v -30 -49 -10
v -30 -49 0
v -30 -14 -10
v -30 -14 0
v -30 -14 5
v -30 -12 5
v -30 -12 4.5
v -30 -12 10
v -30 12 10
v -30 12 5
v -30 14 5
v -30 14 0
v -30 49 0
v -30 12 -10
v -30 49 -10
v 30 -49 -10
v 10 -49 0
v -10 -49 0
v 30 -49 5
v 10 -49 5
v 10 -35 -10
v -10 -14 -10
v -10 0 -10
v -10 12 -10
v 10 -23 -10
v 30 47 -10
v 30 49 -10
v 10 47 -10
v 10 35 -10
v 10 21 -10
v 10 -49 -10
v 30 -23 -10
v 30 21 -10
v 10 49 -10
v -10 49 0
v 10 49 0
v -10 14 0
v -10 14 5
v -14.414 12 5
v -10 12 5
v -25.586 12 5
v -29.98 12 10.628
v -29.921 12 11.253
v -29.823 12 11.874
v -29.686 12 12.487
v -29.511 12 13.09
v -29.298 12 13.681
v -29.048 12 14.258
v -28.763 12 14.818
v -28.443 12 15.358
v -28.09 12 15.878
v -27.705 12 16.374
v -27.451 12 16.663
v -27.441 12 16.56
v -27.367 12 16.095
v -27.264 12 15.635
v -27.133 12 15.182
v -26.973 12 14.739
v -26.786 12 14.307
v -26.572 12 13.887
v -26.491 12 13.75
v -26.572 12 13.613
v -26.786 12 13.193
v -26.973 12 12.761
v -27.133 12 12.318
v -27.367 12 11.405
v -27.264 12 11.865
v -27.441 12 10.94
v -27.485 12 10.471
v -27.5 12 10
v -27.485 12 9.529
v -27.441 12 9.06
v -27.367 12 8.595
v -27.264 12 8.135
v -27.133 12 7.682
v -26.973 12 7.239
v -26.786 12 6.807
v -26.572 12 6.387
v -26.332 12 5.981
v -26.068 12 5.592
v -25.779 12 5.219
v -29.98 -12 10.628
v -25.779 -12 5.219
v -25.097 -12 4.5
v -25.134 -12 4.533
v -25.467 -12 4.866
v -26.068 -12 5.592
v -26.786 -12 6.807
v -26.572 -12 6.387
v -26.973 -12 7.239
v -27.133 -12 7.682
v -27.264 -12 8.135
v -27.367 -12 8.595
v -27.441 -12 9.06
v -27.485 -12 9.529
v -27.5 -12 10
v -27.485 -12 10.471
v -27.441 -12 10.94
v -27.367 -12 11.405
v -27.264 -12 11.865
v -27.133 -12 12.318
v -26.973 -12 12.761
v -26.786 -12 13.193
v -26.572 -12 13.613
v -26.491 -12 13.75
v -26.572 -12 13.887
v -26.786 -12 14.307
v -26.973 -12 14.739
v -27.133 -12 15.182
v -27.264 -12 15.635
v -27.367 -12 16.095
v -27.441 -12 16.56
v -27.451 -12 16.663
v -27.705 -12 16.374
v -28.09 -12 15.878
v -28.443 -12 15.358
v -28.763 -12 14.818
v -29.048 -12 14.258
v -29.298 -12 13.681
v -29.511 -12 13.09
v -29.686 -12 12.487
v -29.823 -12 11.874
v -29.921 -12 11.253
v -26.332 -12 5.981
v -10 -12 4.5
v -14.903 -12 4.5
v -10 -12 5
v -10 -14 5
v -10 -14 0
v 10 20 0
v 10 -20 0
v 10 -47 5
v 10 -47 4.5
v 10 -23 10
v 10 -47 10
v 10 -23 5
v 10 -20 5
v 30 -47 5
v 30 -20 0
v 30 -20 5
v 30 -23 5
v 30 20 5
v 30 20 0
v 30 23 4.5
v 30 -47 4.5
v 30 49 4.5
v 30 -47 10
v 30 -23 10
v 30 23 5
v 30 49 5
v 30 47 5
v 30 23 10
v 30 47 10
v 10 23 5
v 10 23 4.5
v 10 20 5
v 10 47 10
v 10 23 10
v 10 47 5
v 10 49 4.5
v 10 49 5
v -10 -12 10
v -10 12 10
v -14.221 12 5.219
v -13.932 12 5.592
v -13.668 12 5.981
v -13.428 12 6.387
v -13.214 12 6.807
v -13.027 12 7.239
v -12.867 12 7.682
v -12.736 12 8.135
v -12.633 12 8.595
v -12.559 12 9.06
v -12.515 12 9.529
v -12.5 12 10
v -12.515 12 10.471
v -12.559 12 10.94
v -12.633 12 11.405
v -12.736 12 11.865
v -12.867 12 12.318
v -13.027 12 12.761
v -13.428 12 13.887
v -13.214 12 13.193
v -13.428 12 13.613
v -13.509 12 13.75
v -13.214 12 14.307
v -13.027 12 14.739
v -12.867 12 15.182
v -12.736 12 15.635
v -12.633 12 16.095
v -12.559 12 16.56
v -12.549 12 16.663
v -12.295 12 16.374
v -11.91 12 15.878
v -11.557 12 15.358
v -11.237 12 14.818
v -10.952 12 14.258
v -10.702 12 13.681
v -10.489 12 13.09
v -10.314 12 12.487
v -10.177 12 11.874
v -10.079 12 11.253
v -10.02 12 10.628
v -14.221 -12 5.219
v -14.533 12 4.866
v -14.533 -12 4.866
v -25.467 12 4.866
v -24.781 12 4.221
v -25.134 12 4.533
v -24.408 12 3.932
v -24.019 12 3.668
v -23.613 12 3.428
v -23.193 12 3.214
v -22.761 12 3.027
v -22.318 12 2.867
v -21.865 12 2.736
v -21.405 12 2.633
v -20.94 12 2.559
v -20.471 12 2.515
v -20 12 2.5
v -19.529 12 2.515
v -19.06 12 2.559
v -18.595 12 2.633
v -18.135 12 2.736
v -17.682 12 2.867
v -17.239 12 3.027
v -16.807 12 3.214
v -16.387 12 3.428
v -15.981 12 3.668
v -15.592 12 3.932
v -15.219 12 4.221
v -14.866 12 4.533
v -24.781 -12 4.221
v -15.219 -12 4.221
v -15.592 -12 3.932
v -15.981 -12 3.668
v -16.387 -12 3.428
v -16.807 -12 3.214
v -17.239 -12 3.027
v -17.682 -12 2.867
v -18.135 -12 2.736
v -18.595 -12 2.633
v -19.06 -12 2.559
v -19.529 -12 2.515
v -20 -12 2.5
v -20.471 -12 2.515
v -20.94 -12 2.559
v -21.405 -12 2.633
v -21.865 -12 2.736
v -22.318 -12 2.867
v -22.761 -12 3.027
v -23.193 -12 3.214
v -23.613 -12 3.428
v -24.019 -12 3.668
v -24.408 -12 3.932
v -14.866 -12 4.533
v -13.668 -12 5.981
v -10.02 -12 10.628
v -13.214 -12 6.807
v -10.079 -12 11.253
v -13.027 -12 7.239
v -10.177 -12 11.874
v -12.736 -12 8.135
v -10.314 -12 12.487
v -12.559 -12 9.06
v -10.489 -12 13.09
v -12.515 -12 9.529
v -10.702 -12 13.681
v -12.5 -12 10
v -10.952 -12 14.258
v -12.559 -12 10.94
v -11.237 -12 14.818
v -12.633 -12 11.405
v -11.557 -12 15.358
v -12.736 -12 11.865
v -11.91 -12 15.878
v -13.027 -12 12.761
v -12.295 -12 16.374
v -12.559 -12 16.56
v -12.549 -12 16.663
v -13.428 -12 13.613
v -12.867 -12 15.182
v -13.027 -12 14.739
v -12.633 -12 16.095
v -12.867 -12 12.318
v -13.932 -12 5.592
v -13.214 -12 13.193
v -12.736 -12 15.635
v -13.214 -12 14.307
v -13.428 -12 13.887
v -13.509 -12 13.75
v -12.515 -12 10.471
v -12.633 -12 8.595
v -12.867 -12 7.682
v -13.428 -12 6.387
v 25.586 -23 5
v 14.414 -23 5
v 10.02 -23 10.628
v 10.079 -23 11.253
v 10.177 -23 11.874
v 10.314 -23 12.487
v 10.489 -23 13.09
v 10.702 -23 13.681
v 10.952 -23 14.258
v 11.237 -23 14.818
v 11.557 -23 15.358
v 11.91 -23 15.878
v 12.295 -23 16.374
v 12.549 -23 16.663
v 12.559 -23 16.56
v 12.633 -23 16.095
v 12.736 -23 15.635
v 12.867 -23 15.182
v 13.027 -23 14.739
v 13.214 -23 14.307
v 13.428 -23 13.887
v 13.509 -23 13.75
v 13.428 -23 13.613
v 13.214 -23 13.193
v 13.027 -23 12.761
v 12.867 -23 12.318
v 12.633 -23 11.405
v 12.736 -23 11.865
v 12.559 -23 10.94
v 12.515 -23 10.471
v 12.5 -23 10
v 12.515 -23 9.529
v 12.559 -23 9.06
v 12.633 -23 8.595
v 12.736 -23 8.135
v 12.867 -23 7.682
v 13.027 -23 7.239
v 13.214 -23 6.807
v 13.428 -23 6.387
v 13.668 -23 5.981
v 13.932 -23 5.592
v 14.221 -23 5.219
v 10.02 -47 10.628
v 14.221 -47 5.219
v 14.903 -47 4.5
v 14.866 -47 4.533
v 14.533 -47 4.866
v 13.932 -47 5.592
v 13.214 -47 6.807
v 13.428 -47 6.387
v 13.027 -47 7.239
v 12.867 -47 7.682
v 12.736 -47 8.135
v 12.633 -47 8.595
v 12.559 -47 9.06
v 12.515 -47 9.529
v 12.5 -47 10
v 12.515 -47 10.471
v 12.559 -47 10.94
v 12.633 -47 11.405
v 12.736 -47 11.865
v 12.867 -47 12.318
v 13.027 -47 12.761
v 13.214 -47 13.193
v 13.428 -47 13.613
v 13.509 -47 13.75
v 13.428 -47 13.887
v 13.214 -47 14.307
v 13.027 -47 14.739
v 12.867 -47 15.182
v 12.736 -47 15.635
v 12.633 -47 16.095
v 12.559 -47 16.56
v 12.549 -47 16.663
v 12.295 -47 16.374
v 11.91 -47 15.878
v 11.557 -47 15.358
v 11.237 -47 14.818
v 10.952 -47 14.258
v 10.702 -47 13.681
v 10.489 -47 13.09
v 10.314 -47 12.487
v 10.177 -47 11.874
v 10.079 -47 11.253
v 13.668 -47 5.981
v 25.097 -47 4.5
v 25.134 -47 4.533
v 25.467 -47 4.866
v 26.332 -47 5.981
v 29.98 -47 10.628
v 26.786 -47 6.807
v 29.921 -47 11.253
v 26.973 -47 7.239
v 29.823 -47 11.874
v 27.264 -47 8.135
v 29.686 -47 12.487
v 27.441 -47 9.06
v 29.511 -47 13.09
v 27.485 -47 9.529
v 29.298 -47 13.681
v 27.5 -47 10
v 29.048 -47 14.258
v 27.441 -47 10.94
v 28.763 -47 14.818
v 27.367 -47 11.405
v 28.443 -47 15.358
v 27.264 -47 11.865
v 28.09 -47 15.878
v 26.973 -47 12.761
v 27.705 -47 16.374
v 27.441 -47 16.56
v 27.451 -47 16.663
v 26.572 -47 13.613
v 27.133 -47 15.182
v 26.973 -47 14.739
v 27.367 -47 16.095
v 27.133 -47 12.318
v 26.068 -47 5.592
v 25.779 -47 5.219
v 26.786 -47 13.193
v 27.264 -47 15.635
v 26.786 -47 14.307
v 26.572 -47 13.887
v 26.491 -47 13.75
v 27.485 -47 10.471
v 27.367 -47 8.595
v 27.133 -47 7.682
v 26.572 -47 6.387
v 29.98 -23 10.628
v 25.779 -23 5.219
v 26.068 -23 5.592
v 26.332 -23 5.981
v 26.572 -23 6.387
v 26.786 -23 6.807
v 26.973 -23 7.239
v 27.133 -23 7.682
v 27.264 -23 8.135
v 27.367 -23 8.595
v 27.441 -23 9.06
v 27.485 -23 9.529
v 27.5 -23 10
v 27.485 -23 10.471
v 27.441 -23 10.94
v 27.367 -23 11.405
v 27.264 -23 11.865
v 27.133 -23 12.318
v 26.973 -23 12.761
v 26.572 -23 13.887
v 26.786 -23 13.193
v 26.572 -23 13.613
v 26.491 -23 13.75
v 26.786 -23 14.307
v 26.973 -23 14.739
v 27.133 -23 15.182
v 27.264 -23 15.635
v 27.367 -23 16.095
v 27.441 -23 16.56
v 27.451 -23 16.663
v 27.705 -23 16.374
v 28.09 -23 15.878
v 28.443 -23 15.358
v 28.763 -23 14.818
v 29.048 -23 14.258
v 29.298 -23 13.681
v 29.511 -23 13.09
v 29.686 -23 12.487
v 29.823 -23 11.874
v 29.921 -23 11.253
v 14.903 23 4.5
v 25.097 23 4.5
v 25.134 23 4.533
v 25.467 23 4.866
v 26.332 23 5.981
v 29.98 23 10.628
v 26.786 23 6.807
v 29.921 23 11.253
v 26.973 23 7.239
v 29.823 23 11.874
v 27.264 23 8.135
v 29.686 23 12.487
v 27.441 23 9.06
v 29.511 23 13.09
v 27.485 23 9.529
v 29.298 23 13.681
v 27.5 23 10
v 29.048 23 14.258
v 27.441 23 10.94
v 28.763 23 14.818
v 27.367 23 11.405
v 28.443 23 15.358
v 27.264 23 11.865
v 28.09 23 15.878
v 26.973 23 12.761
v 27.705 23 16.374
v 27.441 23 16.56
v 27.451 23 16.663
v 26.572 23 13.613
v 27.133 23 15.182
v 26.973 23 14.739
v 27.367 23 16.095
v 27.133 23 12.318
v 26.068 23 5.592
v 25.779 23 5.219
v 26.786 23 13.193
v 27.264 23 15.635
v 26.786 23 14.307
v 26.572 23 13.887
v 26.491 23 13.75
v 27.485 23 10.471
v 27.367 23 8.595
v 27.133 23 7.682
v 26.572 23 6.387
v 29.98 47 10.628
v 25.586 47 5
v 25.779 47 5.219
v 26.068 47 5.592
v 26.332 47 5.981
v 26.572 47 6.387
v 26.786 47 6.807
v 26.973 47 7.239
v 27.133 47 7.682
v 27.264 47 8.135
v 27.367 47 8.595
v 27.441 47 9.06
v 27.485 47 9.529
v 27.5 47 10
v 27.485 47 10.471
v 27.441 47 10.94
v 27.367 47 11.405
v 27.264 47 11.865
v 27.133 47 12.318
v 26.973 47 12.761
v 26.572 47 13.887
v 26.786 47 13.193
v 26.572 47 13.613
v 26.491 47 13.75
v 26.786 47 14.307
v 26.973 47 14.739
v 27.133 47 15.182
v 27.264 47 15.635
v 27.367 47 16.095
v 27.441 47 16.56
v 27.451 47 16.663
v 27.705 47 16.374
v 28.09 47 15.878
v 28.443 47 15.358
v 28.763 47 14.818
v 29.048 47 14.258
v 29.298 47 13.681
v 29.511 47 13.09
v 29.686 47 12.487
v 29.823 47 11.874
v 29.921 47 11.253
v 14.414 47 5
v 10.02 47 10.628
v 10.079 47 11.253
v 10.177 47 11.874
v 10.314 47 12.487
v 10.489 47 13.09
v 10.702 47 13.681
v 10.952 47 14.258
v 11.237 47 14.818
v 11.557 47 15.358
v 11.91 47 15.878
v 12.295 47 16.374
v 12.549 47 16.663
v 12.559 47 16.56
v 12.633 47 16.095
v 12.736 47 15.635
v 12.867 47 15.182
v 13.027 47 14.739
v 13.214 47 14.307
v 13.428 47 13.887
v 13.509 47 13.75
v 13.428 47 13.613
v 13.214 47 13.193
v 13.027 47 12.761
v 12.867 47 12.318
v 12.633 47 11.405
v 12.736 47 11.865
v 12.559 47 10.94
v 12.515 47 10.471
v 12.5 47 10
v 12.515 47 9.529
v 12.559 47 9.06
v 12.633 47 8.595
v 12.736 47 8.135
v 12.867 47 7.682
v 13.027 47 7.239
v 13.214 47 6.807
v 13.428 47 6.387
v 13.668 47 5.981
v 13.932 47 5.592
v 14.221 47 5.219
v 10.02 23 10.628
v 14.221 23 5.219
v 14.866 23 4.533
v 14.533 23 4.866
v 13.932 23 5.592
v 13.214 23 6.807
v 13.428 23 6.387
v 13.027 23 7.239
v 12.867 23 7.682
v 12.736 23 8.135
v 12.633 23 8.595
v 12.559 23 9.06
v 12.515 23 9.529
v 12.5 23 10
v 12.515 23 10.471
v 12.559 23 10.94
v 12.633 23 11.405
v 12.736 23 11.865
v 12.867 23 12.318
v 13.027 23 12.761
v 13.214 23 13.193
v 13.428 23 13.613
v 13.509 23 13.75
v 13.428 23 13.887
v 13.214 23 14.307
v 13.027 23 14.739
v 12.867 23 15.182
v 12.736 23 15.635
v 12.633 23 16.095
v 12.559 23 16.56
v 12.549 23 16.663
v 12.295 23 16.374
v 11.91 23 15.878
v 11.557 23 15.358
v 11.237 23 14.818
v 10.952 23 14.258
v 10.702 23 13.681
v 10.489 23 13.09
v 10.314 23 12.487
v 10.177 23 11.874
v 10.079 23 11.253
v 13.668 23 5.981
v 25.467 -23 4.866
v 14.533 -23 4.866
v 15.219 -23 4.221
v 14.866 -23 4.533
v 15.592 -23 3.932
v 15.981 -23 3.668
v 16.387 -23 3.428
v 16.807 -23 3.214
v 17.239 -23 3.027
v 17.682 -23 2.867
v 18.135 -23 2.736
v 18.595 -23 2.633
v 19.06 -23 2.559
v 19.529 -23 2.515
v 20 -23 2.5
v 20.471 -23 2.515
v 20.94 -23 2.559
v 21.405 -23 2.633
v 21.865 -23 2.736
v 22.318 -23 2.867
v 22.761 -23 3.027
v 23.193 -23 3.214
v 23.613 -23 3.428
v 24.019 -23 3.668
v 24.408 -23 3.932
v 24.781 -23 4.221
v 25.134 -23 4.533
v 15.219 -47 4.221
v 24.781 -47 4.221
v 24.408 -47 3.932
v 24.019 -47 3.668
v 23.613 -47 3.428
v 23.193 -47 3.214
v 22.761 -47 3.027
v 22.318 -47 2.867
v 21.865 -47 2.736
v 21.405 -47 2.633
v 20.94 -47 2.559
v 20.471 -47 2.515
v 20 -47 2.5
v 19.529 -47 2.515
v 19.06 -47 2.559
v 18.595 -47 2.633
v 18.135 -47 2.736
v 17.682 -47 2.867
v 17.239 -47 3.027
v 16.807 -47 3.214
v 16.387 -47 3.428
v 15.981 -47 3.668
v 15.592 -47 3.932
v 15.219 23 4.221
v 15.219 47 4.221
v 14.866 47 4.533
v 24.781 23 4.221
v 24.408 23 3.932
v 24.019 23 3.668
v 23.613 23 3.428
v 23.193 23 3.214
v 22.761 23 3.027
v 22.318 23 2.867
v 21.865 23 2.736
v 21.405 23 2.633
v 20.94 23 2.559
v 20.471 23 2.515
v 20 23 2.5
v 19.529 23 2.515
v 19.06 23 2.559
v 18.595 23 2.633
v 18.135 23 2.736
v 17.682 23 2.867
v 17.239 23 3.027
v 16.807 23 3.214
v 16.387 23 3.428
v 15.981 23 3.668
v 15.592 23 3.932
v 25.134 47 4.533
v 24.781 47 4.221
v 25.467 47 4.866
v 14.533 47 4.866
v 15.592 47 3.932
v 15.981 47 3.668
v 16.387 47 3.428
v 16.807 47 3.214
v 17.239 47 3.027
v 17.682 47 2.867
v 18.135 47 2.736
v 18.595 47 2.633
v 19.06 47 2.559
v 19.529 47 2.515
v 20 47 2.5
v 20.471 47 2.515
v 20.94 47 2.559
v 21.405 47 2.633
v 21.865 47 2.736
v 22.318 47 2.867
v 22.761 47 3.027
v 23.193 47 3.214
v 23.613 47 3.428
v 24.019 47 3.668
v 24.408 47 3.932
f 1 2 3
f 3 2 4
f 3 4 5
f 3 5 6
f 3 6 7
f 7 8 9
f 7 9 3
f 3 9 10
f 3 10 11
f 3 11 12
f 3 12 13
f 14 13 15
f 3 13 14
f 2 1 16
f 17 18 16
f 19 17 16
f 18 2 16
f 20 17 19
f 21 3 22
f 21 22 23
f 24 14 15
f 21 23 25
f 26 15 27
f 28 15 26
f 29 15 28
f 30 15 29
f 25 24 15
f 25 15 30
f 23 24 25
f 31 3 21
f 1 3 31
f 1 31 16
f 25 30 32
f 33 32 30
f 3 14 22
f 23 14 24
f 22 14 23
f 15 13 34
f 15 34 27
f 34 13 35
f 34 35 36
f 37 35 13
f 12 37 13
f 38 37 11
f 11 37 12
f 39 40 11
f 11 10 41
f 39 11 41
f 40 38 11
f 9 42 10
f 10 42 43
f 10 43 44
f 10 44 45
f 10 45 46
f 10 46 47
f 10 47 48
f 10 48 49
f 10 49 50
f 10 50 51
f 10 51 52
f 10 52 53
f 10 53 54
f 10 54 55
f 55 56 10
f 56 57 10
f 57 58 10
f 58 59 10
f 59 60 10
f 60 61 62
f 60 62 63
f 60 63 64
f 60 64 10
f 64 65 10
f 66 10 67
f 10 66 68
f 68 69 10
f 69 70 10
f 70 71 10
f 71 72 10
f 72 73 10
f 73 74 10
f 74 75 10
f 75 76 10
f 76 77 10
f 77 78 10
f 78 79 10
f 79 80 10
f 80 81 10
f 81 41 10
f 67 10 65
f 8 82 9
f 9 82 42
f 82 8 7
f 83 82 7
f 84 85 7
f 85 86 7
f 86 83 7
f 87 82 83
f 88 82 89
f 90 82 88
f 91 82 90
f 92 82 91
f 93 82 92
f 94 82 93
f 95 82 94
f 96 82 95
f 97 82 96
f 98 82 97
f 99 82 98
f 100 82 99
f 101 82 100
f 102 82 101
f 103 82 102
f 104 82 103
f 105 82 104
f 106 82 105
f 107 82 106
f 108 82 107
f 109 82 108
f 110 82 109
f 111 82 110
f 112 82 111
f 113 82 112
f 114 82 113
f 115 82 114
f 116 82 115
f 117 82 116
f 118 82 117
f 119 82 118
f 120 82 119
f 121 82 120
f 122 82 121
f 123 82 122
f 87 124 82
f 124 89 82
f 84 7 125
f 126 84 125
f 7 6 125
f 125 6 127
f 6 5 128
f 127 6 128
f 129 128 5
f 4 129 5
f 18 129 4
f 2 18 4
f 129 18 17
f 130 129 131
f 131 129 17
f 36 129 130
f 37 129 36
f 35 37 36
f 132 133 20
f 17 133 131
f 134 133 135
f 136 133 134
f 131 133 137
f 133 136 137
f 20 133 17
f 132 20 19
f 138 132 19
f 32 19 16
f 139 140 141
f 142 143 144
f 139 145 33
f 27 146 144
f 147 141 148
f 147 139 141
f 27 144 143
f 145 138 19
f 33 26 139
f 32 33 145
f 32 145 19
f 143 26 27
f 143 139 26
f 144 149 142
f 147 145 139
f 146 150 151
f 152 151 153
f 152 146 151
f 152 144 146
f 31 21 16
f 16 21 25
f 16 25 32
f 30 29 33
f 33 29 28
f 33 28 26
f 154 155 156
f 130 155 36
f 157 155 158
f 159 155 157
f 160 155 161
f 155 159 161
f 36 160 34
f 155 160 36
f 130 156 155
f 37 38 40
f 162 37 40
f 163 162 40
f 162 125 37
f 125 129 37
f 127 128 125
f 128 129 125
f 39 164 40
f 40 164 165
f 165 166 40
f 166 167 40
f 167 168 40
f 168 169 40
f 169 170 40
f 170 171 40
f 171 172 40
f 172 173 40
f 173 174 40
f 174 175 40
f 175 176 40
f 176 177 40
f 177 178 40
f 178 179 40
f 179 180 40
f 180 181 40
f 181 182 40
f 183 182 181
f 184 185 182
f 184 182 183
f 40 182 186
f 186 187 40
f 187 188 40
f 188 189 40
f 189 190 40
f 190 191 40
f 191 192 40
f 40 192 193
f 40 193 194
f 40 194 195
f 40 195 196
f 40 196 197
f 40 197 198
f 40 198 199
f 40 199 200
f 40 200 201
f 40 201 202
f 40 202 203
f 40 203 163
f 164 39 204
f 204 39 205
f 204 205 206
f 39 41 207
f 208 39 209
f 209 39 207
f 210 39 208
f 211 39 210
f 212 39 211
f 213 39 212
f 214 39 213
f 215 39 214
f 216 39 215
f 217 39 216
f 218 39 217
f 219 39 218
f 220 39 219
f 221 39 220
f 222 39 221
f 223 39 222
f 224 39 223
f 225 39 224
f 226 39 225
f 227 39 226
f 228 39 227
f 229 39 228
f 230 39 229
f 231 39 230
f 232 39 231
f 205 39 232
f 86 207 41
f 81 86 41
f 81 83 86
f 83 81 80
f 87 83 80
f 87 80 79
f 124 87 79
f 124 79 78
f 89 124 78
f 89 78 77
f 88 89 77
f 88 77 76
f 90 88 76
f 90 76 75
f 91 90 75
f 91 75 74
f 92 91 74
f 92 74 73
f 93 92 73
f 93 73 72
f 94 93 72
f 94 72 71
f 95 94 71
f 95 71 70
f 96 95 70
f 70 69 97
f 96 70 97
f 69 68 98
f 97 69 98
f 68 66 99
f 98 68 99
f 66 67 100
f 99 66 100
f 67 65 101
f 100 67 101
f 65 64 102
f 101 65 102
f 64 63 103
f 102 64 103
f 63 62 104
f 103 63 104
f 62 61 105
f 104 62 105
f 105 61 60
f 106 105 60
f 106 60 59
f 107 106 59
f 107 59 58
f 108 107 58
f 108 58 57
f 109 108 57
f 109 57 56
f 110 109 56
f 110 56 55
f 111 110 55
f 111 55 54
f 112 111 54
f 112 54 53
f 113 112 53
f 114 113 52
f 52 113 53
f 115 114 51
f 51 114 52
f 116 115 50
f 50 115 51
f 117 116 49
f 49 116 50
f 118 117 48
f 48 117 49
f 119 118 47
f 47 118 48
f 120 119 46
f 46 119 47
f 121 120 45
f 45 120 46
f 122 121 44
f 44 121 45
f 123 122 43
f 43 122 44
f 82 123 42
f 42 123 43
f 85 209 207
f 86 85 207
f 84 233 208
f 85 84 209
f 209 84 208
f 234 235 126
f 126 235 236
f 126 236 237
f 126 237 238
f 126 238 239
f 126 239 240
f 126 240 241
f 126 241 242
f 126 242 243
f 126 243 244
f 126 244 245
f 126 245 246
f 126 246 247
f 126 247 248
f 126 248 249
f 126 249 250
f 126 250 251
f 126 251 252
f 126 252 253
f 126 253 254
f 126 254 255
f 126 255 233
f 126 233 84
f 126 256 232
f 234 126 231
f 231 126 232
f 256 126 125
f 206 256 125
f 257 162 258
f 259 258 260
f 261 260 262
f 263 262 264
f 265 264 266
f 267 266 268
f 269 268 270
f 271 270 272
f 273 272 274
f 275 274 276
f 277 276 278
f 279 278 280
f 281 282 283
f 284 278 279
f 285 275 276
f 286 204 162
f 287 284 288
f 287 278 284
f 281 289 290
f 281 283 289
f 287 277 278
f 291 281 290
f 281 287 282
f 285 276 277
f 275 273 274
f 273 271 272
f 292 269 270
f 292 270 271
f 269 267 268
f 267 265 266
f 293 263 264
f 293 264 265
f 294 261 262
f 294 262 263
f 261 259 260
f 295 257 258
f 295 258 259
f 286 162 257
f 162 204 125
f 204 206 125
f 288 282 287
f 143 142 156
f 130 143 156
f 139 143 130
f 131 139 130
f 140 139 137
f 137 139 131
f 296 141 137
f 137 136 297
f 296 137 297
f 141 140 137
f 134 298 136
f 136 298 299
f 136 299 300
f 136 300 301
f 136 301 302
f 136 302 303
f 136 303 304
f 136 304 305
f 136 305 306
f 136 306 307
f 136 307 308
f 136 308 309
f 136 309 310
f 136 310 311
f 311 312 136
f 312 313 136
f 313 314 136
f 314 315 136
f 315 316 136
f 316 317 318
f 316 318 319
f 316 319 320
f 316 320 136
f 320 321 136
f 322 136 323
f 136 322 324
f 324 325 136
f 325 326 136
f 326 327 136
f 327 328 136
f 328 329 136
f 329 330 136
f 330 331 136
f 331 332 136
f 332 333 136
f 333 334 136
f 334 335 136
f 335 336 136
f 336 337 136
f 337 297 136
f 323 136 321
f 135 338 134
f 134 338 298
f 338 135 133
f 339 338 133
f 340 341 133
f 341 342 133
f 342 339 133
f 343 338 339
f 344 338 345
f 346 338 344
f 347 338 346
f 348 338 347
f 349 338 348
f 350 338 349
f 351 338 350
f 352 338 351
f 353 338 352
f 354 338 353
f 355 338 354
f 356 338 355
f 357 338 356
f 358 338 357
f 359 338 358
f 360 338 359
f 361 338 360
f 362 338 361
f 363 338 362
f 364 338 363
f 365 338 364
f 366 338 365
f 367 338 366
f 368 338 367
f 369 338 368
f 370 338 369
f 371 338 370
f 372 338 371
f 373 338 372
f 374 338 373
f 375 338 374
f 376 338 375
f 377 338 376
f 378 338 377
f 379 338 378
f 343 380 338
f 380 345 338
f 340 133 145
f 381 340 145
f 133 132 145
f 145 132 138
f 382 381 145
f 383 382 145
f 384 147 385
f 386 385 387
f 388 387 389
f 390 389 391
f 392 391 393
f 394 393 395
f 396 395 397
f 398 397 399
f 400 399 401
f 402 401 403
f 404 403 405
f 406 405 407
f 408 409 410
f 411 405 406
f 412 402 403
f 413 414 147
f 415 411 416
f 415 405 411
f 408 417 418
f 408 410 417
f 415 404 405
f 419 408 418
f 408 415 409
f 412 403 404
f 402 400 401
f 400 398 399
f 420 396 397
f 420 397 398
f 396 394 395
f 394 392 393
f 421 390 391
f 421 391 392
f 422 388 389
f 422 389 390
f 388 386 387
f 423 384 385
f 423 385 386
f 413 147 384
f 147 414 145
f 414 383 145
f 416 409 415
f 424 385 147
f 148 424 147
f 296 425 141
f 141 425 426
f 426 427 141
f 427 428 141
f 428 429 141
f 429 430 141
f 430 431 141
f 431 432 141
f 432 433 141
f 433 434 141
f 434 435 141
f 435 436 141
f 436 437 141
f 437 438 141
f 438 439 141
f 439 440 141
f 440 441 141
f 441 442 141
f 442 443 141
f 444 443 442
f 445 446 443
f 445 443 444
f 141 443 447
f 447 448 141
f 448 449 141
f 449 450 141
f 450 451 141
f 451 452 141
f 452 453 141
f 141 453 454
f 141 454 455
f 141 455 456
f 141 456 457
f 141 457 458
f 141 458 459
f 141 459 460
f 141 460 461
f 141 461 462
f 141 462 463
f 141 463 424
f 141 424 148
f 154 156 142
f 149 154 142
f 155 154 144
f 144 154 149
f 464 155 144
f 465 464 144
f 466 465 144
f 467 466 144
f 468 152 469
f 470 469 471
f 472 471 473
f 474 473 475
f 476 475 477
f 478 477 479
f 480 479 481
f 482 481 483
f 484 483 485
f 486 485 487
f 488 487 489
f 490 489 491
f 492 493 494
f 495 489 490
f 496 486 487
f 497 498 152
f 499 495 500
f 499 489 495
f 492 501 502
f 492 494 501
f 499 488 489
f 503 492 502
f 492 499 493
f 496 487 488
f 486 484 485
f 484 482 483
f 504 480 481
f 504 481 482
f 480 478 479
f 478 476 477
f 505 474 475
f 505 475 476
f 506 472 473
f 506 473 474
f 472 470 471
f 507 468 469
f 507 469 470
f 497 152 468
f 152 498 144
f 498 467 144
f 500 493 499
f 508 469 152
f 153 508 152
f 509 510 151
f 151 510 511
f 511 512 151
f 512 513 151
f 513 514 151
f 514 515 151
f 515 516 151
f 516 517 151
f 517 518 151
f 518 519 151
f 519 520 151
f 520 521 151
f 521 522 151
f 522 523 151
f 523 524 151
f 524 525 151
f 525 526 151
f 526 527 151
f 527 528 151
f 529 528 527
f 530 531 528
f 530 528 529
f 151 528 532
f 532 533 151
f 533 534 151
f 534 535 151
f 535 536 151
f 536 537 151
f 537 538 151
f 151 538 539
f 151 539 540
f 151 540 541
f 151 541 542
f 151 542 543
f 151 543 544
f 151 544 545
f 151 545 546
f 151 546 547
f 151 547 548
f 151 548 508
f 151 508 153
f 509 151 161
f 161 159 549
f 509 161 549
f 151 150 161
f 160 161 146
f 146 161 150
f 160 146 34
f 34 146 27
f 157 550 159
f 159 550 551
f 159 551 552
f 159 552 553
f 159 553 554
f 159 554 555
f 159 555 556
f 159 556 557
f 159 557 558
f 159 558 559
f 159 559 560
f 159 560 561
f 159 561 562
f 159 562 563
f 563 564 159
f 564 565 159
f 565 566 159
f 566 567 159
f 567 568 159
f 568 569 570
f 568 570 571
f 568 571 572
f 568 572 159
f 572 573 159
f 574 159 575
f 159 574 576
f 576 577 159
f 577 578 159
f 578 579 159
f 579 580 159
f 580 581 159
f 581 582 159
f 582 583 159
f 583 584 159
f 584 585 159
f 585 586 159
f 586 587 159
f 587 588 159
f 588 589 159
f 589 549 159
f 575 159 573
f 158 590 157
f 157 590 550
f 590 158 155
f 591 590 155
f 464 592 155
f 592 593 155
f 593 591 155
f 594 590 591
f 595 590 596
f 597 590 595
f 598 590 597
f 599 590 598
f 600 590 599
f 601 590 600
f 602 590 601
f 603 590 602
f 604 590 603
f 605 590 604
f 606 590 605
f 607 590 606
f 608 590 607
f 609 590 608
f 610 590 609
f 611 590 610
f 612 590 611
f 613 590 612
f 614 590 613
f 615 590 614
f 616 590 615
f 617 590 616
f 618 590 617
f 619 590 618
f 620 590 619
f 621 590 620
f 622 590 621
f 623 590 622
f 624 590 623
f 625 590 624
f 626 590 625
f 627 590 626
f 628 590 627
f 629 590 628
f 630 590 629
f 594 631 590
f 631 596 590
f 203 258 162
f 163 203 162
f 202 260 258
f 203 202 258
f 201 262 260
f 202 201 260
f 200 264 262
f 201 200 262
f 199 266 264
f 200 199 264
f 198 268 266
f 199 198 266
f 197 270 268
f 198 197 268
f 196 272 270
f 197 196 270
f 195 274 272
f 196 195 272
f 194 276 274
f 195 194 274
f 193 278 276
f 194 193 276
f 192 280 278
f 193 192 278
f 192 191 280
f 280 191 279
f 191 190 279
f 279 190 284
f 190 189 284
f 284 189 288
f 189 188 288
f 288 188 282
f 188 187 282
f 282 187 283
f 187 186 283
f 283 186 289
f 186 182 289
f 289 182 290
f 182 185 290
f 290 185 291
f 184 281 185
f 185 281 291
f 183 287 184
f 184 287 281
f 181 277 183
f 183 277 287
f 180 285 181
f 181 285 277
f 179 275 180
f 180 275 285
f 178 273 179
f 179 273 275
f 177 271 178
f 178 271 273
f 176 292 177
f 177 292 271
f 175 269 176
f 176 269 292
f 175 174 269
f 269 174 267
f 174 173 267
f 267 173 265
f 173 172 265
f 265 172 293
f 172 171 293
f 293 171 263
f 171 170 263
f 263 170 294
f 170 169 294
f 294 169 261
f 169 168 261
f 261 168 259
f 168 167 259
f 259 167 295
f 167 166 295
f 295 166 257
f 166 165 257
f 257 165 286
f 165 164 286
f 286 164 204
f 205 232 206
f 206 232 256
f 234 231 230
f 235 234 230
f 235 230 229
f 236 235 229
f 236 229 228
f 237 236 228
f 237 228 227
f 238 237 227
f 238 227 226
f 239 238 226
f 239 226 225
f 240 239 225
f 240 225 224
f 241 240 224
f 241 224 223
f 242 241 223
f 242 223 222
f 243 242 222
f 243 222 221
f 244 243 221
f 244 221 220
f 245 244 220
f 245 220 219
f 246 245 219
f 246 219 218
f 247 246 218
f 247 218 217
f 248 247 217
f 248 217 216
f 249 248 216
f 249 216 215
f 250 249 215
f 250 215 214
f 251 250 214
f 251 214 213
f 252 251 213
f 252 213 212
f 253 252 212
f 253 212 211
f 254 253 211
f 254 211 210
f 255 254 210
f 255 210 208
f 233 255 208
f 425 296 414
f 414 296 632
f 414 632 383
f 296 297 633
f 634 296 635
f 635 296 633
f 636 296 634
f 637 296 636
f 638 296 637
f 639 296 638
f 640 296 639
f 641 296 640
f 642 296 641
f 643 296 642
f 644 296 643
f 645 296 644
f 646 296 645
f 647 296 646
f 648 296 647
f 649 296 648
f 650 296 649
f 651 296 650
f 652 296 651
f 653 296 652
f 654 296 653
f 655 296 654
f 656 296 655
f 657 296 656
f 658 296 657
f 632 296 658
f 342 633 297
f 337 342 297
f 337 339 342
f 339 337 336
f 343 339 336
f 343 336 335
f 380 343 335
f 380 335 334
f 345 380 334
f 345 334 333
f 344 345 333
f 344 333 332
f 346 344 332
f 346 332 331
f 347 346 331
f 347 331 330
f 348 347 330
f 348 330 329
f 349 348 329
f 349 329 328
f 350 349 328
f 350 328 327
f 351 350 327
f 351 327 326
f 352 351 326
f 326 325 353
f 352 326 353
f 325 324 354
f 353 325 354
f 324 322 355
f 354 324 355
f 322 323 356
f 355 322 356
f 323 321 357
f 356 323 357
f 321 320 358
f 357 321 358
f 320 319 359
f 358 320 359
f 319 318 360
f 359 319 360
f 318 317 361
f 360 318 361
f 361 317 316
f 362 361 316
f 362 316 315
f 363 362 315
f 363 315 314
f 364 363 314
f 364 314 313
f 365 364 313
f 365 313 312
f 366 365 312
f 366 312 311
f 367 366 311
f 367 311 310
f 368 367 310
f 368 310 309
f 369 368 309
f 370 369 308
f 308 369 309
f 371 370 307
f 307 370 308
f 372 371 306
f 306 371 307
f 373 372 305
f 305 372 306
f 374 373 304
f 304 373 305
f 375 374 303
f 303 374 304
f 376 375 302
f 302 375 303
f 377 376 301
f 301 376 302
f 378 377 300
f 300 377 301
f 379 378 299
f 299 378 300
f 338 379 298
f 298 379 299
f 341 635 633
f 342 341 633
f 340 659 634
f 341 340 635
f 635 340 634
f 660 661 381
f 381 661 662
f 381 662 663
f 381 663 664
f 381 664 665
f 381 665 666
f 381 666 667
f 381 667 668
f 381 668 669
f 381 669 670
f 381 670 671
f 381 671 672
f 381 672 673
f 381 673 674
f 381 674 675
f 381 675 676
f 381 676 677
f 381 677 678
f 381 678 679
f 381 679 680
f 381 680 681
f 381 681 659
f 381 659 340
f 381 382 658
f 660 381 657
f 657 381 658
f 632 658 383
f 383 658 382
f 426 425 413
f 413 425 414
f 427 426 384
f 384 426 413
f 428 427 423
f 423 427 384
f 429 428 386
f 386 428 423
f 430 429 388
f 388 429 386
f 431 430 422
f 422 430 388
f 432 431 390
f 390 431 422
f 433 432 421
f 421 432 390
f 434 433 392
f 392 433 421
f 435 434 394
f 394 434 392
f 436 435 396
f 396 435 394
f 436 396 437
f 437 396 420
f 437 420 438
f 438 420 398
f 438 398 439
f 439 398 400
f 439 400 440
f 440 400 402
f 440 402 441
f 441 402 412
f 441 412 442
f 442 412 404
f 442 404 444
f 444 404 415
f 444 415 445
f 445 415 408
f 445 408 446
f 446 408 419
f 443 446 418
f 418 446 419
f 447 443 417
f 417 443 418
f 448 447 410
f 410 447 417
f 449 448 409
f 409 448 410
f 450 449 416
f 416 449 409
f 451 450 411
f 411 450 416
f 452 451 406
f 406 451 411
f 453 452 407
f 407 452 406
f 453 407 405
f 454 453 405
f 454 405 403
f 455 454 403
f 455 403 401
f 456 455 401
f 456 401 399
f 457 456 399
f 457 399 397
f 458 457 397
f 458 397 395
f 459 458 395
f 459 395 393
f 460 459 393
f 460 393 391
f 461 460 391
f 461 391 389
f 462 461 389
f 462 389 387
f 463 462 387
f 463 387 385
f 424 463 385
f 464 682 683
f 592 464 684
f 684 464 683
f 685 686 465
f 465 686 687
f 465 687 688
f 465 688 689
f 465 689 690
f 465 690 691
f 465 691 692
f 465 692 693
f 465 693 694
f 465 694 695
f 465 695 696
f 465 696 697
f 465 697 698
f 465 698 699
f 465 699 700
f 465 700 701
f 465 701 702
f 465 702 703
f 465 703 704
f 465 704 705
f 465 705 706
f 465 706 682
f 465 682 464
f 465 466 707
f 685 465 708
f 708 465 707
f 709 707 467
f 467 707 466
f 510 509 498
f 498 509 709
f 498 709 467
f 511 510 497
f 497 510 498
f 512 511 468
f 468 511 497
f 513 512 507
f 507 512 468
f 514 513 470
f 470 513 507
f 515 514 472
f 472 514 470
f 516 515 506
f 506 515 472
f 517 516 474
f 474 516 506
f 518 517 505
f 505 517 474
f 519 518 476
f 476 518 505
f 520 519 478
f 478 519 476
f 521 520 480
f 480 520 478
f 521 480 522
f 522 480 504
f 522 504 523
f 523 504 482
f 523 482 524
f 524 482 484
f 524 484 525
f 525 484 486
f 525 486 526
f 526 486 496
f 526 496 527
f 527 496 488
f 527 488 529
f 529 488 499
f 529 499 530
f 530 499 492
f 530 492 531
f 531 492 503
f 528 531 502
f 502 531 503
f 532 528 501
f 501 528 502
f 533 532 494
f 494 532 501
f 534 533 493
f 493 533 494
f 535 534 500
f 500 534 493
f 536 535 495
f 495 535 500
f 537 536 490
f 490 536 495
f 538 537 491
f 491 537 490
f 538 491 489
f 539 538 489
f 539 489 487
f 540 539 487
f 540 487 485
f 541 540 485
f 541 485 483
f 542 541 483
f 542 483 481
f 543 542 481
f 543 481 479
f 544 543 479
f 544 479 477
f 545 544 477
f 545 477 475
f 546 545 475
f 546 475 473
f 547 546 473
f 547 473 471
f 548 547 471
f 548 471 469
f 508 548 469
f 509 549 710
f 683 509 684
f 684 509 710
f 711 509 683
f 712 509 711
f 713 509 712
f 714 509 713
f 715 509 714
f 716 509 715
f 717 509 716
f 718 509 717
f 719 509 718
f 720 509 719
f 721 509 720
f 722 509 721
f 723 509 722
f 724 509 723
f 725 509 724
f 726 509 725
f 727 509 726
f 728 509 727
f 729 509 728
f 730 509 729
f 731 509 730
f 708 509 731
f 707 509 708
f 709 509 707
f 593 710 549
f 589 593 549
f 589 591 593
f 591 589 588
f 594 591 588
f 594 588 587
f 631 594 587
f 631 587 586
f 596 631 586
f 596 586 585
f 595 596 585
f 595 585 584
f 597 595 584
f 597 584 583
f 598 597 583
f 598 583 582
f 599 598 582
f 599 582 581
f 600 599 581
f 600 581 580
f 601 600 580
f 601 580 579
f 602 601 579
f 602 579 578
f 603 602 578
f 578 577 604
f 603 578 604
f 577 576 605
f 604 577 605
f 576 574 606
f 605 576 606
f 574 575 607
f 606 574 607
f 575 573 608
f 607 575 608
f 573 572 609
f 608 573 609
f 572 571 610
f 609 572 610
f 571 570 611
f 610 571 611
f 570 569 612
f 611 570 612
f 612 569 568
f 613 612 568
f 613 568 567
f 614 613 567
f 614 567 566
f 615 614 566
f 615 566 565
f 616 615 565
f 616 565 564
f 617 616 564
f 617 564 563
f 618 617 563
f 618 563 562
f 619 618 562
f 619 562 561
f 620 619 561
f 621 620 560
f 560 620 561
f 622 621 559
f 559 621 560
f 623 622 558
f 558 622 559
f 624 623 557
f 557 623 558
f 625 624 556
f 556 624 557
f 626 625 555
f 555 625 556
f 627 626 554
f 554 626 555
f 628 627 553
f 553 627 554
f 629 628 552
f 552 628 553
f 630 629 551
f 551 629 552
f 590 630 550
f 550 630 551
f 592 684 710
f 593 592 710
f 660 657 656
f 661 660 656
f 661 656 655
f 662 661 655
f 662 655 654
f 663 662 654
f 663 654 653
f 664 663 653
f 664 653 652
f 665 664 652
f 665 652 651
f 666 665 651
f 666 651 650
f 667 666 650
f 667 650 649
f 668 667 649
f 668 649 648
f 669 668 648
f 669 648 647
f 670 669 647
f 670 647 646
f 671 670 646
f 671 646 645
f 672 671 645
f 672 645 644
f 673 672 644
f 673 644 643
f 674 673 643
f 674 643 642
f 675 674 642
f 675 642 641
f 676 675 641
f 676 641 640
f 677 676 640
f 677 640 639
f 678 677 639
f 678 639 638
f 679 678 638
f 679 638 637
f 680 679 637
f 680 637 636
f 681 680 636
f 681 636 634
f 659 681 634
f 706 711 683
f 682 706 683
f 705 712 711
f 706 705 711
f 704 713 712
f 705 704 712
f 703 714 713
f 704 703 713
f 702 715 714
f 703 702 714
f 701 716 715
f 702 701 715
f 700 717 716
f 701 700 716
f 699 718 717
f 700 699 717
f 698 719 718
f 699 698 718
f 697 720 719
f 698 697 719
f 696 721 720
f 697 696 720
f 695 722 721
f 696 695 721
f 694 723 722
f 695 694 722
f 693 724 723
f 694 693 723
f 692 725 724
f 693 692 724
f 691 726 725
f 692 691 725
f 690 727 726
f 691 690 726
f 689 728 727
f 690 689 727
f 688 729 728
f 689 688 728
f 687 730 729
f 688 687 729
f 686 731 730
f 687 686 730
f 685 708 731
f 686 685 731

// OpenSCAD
// file: lib.scad
module bearing_holder(l, h, r1, r2, holder_depth, holder_thick=2) {
	union(){
		difference(){
			union(){
				translate([-r1,0,-l/2]) cube([r1*2,h,l]);
				cylinder (h = l, r=r1, center = true, $fn=100);
			}
			cylinder (h = l, r=r2, center = true, $fn=100);
			translate([0,-r2,0]) cylinder (h = l, r=r2, center = true, $fn=100);
		}
		translate([0,(h+r2-holder_thick)/2,l/2+holder_thick/2]) cube([r1*2,h-r2+holder_thick,holder_thick], center=true);
		translate([0,(h+r2-holder_thick)/2,-(l/2+holder_thick/2)]) cube([r1*2,h-r2+holder_thick,holder_thick], center=true);
	}
}

module single_bearing_frame(r1, r2, h, l, d, holder_depth, holder_thick=2, bar_offset=false){
	difference(){
		union(){
			translate([0,0,h/2]) rotate([-90,0,0]) bearing_holder(l, h, r1, r2, holder_depth);
			translate([0,l/2+(d+l)/4,-r2/2+holder_depth/2]) cube([r1*2,(d+l)/2,h-r2+holder_depth], center=true);
			translate([0,-(l/2+(d+l)/4),-r2/2+holder_depth/2]) cube([r1*2,(d+l)/2,h-r2+holder_depth], center=true);
		}
		if (bar_offset != false){
			translate([0,-(d+l)/2,-h/2+bar_offset]) rotate([0,90,0]) cylinder(r=4, h=r1*2.5,center=true,$fn=100);
			translate([0,(d+l)/2,-h/2+bar_offset]) rotate([0,90,0]) cylinder(r=4, h=r1*2.5,center=true,$fn=100);		
		}
		translate([0,-(l/2+(d+l)/4+holder_thick/2),h/4]) cube([r1*2,(d+l)/2-holder_thick,h/2], center=true);
		translate([0,(l/2+(d+l)/4+holder_thick/2),h/4]) cube([r1*2,(d+l)/2-holder_thick,h/2], center=true);
	}
}

module double_bearing_frame(r1, r2, h, l, d, holder_depth, holder_thick=2, bar_offset=false){
	difference(){
		union(){
			translate([0,-((d+l)/2-holder_thick),h/2]) rotate([-90,0,0]) bearing_holder(l, h, r1, r2, holder_depth);
			translate([0,(d+l)/2-holder_thick,h/2]) rotate([-90,0,0]) bearing_holder(l, h, r1, r2, holder_depth);

			translate([0,0,-r2/2+holder_depth/2]) cube([r1*2,d-holder_thick*2,h-r2+holder_depth], center=true);

			translate([0,d/2+l-holder_thick/2,-r2/2+holder_depth/2]) cube([r1*2,holder_thick,h-r2+holder_depth], center=true);
			translate([0,-d/2-l+holder_thick/2,-r2/2+holder_depth/2]) cube([r1*2,holder_thick,h-r2+holder_depth], center=true);
		}
		if (bar_offset != false){
			translate([0,-(d+l)/2,-h/2+bar_offset]) rotate([0,90,0]) cylinder(r=4, h=r1*2.5,center=true,$fn=100);
			translate([0,(d+l)/2,-h/2+bar_offset]) rotate([0,90,0]) cylinder(r=4, h=r1*2.5,center=true,$fn=100);	
		}
		translate([0,0,h/4]) cube([r1*2,d-4*holder_depth,h/2], center=true);
	}
}

/*
r1 = 10;
r2 = 7.5;
h = 40;
l = 24;
d = 50;
holder_depth = 2.5;
//bearing_holder(l, h, r1, r2, holder_depth);
single_bearing_frame(r1, r2, h, l, d, holder_depth, bar_offset=10);
//double_bearing_frame(r1, r2, h, l, d, holder_depth, bar_offset=10);
/*
*/
// main file
include <lib.scad>;

r1 = 10;
r2 = 7.5;
h = 20;
l = 24;
d = 50;
holder_depth = 2.5;

rod_distance = 40;
difference(){
union(){
	translate([rod_distance/2,0,0]) union(){
		double_bearing_frame(r1, r2, h, l, d, holder_depth);
	}
	translate([-rod_distance/2,0,0]) union(){
		single_bearing_frame(r1, r2, h, l, d, holder_depth);
	}
	translate([0,0,-r1/2]) cube([rod_distance-r1*2, d+2*l, h-r1], center=true);
}
}
